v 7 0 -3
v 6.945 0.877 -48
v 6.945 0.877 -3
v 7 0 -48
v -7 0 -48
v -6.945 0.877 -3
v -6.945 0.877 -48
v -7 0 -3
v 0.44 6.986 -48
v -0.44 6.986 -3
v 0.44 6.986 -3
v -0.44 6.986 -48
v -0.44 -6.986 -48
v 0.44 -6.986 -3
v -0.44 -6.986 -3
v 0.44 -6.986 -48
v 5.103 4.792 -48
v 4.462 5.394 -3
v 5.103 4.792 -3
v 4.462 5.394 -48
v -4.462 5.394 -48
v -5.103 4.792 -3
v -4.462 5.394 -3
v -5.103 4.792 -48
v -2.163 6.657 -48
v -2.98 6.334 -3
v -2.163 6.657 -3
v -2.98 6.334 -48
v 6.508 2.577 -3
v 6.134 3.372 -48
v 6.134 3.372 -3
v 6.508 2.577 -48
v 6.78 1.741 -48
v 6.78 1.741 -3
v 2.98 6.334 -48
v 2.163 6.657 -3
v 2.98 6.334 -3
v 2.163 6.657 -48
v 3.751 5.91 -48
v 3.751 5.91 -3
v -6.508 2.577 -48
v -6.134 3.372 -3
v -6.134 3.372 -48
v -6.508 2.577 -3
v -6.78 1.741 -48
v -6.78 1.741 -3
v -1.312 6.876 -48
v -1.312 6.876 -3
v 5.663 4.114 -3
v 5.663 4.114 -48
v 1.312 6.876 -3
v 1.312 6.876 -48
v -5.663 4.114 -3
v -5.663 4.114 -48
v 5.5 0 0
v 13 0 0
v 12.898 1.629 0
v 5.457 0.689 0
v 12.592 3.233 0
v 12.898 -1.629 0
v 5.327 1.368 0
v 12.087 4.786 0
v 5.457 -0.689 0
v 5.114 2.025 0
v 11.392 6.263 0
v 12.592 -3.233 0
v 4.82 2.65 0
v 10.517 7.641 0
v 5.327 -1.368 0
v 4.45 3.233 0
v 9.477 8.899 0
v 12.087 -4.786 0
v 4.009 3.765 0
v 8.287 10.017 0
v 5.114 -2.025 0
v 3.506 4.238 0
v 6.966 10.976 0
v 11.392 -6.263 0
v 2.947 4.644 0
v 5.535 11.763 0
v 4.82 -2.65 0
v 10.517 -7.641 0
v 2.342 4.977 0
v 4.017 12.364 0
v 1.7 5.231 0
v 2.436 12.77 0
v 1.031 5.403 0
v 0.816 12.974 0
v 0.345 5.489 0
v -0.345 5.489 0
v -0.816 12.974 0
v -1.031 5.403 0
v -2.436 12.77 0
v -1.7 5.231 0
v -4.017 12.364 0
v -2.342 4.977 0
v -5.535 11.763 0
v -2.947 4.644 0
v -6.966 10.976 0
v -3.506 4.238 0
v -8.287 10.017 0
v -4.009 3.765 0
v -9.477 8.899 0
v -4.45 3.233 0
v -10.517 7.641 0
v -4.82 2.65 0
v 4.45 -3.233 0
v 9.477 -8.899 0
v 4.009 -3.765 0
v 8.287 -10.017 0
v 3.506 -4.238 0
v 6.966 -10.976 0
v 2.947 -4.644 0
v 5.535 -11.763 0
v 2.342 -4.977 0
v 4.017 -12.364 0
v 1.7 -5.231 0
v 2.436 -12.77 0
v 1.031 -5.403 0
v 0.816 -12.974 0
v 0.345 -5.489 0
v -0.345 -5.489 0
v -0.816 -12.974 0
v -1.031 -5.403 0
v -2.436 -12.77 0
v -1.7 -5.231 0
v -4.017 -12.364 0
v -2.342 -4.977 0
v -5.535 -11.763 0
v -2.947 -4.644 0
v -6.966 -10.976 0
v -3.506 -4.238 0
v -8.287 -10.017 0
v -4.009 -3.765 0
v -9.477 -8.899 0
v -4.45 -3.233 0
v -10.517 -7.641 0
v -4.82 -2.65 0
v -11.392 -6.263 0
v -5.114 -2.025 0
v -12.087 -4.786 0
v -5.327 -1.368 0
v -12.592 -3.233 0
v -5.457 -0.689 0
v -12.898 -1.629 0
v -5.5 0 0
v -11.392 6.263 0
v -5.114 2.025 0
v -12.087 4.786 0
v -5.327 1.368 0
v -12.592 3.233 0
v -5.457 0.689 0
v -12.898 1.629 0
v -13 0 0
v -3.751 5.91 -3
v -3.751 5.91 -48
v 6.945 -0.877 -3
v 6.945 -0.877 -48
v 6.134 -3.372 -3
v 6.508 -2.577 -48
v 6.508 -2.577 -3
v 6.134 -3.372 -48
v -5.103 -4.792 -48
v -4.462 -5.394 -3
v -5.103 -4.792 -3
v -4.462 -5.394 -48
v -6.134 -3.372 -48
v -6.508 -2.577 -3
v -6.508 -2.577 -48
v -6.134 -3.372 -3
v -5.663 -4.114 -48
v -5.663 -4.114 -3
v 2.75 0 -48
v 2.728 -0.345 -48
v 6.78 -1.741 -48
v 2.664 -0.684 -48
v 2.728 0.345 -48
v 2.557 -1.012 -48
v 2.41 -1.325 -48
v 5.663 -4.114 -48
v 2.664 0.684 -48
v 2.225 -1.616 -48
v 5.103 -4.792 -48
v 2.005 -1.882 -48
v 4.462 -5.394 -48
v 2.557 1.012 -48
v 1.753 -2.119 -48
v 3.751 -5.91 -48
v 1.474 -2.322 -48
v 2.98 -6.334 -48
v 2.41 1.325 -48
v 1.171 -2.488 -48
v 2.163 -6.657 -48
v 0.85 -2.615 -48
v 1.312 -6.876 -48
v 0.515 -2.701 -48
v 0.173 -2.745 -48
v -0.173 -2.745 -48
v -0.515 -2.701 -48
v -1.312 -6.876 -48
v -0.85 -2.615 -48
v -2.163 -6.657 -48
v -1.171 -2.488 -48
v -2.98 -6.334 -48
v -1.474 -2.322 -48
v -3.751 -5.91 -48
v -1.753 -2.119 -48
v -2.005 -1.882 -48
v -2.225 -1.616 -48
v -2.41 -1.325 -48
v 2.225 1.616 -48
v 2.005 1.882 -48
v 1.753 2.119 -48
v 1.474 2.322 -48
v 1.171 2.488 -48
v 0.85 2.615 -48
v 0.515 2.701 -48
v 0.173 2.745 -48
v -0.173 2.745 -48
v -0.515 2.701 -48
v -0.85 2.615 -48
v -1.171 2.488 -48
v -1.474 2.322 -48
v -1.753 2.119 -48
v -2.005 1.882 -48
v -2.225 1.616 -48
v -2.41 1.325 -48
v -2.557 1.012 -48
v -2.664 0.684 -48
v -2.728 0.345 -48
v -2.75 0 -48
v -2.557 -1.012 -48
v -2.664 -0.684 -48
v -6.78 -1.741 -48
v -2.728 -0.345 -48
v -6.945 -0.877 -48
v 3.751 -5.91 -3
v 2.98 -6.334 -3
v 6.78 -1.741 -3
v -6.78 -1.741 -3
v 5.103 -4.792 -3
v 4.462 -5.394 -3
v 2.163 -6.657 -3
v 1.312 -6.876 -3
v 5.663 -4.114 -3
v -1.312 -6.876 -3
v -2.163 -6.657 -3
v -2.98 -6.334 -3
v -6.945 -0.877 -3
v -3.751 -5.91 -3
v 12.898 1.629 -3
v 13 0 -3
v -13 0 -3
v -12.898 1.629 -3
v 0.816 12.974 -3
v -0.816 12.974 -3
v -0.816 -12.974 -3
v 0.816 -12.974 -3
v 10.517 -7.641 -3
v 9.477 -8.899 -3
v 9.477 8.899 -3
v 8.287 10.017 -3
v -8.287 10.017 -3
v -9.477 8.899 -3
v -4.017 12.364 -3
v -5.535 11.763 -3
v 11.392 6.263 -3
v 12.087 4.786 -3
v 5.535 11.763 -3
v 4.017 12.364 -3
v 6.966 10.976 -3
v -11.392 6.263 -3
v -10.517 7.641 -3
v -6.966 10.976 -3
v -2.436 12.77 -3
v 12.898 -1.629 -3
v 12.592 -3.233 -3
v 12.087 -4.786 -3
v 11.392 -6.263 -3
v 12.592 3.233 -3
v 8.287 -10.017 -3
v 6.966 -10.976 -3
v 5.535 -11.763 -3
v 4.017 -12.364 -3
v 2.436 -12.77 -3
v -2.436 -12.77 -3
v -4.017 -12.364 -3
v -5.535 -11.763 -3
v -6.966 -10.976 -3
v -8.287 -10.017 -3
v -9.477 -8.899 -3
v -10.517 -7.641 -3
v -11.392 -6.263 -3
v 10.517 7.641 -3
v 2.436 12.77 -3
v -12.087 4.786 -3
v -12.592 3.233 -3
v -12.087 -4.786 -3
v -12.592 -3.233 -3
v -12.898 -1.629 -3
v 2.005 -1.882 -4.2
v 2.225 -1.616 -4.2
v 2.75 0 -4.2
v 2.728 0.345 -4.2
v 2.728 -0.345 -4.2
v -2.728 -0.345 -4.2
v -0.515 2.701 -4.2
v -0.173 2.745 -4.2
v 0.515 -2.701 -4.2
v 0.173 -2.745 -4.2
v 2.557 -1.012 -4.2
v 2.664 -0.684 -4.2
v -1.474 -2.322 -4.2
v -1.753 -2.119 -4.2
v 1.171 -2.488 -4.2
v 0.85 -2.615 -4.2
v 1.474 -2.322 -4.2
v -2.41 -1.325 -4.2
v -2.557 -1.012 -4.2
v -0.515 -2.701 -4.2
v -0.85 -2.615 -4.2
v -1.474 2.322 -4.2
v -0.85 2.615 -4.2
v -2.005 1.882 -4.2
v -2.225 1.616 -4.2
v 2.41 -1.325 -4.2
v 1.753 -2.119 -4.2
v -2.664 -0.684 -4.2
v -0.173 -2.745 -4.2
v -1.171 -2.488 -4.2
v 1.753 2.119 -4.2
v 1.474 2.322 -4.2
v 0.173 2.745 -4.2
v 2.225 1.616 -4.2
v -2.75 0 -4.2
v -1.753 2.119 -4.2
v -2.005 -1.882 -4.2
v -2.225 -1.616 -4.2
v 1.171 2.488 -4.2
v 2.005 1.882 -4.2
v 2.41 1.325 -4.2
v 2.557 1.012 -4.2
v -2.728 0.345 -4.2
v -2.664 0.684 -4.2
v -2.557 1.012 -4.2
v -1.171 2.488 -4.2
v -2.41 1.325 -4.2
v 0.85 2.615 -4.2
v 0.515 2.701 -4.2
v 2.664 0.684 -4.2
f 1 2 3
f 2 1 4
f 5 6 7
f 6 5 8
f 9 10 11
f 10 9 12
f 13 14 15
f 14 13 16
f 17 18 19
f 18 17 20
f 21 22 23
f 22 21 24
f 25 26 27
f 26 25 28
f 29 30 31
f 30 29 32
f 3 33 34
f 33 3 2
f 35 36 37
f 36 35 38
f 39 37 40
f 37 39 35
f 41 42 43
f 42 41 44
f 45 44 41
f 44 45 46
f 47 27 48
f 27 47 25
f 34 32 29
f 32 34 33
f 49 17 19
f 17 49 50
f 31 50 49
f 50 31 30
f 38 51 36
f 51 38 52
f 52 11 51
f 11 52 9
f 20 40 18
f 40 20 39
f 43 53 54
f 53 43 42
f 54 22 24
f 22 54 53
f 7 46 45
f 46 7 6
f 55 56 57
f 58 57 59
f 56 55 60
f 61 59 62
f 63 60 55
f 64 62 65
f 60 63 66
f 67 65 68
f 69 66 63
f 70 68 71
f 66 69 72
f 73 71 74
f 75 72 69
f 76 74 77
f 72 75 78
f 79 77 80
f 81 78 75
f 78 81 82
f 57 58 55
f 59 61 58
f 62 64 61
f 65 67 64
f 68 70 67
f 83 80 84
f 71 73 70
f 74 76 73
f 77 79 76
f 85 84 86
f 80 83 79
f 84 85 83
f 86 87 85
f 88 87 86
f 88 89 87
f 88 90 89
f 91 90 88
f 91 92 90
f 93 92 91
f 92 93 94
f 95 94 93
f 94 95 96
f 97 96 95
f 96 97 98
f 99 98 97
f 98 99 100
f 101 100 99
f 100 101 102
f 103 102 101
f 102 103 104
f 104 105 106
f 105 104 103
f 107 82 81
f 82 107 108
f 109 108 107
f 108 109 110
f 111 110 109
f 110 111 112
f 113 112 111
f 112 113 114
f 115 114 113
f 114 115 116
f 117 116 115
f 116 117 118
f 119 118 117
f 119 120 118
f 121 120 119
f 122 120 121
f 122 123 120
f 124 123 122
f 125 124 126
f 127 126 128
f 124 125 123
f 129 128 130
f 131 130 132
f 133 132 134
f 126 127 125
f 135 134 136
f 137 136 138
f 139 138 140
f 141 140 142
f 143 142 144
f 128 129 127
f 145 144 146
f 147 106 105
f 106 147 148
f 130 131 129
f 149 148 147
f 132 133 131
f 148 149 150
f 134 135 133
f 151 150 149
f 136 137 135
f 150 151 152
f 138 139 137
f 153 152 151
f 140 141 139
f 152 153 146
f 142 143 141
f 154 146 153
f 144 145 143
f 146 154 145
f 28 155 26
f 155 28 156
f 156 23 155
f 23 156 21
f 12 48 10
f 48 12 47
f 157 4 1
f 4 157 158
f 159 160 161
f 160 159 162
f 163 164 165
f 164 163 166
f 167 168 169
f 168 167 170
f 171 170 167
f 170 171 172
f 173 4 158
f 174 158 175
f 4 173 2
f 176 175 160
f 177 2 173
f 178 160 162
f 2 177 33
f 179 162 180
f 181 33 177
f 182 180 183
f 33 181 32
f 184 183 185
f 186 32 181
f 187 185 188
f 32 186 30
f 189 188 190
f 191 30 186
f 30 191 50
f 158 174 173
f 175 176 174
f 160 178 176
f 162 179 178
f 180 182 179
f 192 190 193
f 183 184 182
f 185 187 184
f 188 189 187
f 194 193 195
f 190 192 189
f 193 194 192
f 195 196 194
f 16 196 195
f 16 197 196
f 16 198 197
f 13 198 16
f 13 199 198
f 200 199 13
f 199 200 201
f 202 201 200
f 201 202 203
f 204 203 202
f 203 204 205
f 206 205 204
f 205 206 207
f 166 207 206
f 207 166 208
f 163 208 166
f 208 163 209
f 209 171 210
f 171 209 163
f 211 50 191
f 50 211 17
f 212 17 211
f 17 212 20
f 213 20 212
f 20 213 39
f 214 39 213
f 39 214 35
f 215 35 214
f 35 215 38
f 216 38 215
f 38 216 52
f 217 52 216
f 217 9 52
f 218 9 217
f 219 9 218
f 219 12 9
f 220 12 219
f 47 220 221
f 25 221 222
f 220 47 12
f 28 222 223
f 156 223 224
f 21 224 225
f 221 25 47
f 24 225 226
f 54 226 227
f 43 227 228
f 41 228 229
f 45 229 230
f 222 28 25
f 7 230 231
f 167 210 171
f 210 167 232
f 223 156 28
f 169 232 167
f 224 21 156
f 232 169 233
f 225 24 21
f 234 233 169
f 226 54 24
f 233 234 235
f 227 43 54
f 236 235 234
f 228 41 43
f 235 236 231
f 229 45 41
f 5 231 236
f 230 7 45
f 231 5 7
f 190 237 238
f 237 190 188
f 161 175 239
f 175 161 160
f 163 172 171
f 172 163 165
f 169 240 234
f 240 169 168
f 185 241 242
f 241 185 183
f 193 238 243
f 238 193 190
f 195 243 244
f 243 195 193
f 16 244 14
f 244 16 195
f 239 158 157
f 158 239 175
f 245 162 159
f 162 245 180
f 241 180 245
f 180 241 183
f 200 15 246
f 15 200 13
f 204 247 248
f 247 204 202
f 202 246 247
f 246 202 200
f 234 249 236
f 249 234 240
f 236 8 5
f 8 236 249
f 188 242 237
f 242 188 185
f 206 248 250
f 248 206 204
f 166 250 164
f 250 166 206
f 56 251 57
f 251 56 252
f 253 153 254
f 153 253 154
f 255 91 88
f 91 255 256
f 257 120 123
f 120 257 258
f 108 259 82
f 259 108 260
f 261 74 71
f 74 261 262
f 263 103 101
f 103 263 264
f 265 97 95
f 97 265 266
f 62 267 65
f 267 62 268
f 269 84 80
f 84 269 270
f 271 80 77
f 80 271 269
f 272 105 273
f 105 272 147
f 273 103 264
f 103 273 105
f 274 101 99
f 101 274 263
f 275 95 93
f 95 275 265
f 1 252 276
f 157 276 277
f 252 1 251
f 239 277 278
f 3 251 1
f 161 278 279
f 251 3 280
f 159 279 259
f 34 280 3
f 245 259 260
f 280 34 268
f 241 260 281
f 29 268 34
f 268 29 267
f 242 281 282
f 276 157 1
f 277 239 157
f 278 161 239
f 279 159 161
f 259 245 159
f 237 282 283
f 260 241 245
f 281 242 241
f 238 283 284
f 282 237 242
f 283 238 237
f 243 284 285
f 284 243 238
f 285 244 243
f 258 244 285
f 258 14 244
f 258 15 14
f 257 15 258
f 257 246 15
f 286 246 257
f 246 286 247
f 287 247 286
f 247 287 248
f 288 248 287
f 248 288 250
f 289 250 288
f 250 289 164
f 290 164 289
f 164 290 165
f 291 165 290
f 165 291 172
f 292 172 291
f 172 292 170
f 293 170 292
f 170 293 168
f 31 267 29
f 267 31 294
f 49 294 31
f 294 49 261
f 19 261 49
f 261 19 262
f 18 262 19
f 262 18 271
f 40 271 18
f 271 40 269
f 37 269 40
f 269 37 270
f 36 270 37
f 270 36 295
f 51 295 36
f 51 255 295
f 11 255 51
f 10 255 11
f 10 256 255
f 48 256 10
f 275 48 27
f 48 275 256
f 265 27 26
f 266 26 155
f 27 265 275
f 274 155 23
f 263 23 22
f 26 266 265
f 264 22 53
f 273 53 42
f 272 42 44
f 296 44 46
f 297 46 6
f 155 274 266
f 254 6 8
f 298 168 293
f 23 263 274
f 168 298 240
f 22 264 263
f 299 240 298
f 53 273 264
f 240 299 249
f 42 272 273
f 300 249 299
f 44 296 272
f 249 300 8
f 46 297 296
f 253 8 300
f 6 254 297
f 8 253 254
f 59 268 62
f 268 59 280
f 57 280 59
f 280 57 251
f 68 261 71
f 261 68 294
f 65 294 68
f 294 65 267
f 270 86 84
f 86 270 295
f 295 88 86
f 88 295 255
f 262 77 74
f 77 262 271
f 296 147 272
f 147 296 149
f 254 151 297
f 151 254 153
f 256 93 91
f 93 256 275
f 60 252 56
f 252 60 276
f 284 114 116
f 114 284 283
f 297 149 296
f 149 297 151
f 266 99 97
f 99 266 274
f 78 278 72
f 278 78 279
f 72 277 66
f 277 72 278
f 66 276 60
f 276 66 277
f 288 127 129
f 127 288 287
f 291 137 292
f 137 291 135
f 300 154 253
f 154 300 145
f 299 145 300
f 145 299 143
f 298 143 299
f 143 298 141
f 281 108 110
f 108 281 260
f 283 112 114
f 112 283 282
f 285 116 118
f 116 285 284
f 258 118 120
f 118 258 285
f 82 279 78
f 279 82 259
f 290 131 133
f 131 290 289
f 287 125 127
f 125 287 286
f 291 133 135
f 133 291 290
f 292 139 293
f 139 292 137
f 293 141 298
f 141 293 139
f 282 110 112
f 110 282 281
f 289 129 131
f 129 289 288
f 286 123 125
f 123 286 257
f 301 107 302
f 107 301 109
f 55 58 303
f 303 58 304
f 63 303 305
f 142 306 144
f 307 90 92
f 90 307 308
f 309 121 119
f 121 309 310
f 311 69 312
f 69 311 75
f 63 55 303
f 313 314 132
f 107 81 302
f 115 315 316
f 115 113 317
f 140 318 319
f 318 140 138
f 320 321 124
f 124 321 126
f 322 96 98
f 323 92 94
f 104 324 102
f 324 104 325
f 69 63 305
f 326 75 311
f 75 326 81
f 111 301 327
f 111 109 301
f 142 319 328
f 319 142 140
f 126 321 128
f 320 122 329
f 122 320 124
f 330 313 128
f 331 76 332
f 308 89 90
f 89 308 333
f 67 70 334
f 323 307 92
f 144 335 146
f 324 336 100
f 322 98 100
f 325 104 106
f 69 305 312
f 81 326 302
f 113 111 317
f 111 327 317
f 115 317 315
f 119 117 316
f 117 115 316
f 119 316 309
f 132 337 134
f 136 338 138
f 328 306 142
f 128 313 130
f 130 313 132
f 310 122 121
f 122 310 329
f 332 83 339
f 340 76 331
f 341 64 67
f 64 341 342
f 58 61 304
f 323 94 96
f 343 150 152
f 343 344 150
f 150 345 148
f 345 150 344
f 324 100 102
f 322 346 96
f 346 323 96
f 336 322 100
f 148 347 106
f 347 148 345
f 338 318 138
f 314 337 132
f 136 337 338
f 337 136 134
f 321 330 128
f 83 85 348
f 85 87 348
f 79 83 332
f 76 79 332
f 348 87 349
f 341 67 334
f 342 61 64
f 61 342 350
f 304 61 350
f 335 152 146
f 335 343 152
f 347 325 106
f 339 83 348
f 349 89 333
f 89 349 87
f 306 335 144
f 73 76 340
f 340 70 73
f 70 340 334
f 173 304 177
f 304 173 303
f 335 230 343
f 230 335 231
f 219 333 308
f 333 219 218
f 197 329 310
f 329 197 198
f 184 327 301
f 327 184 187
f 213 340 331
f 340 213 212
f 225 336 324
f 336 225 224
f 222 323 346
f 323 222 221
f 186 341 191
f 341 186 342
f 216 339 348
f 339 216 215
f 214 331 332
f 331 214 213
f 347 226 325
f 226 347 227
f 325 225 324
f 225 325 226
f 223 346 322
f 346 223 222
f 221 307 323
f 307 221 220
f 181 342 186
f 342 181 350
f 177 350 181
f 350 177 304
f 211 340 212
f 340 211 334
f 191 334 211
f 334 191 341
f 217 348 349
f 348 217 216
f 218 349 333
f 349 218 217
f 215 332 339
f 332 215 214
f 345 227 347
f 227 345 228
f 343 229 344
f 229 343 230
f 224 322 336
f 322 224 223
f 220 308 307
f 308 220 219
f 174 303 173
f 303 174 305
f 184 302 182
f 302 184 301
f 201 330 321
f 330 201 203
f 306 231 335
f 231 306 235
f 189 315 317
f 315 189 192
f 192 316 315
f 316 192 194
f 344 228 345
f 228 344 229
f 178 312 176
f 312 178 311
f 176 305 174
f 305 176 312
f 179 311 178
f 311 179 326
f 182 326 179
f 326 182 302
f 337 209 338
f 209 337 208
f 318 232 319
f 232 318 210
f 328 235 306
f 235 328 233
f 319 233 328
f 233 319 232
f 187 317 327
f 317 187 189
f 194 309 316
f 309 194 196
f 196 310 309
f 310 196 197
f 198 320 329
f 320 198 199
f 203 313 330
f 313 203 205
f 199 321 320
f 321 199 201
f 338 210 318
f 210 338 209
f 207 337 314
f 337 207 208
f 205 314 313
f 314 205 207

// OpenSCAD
$fn = 50;


difference() {
	union() {
		translate(v = [0, 0, -48.0000000000]) {
			cylinder(h = 48, r = 7.0000000000);
		}
		translate(v = [0, 0, -3.0000000000]) {
			cylinder(h = 3, r = 13.0000000000);
		}
	}
	union() {
		translate(v = [0, 0, 0]) {
			rotate(a = [0, 0, 0]) {
				difference() {
					union() {
						#translate(v = [0, 0, -48.0000000000]) {
							cylinder(h = 48, r = 2.2500000000);
						}
						#translate(v = [0, 0, -4.2000000000]) {
							cylinder(h = 4.2000000000, r1 = 2.7500000000, r2 = 5.5000000000);
						}
						#translate(v = [0, 0, -48.0000000000]) {
							cylinder(h = 48, r = 2.7500000000);
						}
						#translate(v = [0, 0, -48.0000000000]) {
							cylinder(h = 48, r = 2.2500000000);
						}
					}
					union();
				}
			}
		}
	}
}
